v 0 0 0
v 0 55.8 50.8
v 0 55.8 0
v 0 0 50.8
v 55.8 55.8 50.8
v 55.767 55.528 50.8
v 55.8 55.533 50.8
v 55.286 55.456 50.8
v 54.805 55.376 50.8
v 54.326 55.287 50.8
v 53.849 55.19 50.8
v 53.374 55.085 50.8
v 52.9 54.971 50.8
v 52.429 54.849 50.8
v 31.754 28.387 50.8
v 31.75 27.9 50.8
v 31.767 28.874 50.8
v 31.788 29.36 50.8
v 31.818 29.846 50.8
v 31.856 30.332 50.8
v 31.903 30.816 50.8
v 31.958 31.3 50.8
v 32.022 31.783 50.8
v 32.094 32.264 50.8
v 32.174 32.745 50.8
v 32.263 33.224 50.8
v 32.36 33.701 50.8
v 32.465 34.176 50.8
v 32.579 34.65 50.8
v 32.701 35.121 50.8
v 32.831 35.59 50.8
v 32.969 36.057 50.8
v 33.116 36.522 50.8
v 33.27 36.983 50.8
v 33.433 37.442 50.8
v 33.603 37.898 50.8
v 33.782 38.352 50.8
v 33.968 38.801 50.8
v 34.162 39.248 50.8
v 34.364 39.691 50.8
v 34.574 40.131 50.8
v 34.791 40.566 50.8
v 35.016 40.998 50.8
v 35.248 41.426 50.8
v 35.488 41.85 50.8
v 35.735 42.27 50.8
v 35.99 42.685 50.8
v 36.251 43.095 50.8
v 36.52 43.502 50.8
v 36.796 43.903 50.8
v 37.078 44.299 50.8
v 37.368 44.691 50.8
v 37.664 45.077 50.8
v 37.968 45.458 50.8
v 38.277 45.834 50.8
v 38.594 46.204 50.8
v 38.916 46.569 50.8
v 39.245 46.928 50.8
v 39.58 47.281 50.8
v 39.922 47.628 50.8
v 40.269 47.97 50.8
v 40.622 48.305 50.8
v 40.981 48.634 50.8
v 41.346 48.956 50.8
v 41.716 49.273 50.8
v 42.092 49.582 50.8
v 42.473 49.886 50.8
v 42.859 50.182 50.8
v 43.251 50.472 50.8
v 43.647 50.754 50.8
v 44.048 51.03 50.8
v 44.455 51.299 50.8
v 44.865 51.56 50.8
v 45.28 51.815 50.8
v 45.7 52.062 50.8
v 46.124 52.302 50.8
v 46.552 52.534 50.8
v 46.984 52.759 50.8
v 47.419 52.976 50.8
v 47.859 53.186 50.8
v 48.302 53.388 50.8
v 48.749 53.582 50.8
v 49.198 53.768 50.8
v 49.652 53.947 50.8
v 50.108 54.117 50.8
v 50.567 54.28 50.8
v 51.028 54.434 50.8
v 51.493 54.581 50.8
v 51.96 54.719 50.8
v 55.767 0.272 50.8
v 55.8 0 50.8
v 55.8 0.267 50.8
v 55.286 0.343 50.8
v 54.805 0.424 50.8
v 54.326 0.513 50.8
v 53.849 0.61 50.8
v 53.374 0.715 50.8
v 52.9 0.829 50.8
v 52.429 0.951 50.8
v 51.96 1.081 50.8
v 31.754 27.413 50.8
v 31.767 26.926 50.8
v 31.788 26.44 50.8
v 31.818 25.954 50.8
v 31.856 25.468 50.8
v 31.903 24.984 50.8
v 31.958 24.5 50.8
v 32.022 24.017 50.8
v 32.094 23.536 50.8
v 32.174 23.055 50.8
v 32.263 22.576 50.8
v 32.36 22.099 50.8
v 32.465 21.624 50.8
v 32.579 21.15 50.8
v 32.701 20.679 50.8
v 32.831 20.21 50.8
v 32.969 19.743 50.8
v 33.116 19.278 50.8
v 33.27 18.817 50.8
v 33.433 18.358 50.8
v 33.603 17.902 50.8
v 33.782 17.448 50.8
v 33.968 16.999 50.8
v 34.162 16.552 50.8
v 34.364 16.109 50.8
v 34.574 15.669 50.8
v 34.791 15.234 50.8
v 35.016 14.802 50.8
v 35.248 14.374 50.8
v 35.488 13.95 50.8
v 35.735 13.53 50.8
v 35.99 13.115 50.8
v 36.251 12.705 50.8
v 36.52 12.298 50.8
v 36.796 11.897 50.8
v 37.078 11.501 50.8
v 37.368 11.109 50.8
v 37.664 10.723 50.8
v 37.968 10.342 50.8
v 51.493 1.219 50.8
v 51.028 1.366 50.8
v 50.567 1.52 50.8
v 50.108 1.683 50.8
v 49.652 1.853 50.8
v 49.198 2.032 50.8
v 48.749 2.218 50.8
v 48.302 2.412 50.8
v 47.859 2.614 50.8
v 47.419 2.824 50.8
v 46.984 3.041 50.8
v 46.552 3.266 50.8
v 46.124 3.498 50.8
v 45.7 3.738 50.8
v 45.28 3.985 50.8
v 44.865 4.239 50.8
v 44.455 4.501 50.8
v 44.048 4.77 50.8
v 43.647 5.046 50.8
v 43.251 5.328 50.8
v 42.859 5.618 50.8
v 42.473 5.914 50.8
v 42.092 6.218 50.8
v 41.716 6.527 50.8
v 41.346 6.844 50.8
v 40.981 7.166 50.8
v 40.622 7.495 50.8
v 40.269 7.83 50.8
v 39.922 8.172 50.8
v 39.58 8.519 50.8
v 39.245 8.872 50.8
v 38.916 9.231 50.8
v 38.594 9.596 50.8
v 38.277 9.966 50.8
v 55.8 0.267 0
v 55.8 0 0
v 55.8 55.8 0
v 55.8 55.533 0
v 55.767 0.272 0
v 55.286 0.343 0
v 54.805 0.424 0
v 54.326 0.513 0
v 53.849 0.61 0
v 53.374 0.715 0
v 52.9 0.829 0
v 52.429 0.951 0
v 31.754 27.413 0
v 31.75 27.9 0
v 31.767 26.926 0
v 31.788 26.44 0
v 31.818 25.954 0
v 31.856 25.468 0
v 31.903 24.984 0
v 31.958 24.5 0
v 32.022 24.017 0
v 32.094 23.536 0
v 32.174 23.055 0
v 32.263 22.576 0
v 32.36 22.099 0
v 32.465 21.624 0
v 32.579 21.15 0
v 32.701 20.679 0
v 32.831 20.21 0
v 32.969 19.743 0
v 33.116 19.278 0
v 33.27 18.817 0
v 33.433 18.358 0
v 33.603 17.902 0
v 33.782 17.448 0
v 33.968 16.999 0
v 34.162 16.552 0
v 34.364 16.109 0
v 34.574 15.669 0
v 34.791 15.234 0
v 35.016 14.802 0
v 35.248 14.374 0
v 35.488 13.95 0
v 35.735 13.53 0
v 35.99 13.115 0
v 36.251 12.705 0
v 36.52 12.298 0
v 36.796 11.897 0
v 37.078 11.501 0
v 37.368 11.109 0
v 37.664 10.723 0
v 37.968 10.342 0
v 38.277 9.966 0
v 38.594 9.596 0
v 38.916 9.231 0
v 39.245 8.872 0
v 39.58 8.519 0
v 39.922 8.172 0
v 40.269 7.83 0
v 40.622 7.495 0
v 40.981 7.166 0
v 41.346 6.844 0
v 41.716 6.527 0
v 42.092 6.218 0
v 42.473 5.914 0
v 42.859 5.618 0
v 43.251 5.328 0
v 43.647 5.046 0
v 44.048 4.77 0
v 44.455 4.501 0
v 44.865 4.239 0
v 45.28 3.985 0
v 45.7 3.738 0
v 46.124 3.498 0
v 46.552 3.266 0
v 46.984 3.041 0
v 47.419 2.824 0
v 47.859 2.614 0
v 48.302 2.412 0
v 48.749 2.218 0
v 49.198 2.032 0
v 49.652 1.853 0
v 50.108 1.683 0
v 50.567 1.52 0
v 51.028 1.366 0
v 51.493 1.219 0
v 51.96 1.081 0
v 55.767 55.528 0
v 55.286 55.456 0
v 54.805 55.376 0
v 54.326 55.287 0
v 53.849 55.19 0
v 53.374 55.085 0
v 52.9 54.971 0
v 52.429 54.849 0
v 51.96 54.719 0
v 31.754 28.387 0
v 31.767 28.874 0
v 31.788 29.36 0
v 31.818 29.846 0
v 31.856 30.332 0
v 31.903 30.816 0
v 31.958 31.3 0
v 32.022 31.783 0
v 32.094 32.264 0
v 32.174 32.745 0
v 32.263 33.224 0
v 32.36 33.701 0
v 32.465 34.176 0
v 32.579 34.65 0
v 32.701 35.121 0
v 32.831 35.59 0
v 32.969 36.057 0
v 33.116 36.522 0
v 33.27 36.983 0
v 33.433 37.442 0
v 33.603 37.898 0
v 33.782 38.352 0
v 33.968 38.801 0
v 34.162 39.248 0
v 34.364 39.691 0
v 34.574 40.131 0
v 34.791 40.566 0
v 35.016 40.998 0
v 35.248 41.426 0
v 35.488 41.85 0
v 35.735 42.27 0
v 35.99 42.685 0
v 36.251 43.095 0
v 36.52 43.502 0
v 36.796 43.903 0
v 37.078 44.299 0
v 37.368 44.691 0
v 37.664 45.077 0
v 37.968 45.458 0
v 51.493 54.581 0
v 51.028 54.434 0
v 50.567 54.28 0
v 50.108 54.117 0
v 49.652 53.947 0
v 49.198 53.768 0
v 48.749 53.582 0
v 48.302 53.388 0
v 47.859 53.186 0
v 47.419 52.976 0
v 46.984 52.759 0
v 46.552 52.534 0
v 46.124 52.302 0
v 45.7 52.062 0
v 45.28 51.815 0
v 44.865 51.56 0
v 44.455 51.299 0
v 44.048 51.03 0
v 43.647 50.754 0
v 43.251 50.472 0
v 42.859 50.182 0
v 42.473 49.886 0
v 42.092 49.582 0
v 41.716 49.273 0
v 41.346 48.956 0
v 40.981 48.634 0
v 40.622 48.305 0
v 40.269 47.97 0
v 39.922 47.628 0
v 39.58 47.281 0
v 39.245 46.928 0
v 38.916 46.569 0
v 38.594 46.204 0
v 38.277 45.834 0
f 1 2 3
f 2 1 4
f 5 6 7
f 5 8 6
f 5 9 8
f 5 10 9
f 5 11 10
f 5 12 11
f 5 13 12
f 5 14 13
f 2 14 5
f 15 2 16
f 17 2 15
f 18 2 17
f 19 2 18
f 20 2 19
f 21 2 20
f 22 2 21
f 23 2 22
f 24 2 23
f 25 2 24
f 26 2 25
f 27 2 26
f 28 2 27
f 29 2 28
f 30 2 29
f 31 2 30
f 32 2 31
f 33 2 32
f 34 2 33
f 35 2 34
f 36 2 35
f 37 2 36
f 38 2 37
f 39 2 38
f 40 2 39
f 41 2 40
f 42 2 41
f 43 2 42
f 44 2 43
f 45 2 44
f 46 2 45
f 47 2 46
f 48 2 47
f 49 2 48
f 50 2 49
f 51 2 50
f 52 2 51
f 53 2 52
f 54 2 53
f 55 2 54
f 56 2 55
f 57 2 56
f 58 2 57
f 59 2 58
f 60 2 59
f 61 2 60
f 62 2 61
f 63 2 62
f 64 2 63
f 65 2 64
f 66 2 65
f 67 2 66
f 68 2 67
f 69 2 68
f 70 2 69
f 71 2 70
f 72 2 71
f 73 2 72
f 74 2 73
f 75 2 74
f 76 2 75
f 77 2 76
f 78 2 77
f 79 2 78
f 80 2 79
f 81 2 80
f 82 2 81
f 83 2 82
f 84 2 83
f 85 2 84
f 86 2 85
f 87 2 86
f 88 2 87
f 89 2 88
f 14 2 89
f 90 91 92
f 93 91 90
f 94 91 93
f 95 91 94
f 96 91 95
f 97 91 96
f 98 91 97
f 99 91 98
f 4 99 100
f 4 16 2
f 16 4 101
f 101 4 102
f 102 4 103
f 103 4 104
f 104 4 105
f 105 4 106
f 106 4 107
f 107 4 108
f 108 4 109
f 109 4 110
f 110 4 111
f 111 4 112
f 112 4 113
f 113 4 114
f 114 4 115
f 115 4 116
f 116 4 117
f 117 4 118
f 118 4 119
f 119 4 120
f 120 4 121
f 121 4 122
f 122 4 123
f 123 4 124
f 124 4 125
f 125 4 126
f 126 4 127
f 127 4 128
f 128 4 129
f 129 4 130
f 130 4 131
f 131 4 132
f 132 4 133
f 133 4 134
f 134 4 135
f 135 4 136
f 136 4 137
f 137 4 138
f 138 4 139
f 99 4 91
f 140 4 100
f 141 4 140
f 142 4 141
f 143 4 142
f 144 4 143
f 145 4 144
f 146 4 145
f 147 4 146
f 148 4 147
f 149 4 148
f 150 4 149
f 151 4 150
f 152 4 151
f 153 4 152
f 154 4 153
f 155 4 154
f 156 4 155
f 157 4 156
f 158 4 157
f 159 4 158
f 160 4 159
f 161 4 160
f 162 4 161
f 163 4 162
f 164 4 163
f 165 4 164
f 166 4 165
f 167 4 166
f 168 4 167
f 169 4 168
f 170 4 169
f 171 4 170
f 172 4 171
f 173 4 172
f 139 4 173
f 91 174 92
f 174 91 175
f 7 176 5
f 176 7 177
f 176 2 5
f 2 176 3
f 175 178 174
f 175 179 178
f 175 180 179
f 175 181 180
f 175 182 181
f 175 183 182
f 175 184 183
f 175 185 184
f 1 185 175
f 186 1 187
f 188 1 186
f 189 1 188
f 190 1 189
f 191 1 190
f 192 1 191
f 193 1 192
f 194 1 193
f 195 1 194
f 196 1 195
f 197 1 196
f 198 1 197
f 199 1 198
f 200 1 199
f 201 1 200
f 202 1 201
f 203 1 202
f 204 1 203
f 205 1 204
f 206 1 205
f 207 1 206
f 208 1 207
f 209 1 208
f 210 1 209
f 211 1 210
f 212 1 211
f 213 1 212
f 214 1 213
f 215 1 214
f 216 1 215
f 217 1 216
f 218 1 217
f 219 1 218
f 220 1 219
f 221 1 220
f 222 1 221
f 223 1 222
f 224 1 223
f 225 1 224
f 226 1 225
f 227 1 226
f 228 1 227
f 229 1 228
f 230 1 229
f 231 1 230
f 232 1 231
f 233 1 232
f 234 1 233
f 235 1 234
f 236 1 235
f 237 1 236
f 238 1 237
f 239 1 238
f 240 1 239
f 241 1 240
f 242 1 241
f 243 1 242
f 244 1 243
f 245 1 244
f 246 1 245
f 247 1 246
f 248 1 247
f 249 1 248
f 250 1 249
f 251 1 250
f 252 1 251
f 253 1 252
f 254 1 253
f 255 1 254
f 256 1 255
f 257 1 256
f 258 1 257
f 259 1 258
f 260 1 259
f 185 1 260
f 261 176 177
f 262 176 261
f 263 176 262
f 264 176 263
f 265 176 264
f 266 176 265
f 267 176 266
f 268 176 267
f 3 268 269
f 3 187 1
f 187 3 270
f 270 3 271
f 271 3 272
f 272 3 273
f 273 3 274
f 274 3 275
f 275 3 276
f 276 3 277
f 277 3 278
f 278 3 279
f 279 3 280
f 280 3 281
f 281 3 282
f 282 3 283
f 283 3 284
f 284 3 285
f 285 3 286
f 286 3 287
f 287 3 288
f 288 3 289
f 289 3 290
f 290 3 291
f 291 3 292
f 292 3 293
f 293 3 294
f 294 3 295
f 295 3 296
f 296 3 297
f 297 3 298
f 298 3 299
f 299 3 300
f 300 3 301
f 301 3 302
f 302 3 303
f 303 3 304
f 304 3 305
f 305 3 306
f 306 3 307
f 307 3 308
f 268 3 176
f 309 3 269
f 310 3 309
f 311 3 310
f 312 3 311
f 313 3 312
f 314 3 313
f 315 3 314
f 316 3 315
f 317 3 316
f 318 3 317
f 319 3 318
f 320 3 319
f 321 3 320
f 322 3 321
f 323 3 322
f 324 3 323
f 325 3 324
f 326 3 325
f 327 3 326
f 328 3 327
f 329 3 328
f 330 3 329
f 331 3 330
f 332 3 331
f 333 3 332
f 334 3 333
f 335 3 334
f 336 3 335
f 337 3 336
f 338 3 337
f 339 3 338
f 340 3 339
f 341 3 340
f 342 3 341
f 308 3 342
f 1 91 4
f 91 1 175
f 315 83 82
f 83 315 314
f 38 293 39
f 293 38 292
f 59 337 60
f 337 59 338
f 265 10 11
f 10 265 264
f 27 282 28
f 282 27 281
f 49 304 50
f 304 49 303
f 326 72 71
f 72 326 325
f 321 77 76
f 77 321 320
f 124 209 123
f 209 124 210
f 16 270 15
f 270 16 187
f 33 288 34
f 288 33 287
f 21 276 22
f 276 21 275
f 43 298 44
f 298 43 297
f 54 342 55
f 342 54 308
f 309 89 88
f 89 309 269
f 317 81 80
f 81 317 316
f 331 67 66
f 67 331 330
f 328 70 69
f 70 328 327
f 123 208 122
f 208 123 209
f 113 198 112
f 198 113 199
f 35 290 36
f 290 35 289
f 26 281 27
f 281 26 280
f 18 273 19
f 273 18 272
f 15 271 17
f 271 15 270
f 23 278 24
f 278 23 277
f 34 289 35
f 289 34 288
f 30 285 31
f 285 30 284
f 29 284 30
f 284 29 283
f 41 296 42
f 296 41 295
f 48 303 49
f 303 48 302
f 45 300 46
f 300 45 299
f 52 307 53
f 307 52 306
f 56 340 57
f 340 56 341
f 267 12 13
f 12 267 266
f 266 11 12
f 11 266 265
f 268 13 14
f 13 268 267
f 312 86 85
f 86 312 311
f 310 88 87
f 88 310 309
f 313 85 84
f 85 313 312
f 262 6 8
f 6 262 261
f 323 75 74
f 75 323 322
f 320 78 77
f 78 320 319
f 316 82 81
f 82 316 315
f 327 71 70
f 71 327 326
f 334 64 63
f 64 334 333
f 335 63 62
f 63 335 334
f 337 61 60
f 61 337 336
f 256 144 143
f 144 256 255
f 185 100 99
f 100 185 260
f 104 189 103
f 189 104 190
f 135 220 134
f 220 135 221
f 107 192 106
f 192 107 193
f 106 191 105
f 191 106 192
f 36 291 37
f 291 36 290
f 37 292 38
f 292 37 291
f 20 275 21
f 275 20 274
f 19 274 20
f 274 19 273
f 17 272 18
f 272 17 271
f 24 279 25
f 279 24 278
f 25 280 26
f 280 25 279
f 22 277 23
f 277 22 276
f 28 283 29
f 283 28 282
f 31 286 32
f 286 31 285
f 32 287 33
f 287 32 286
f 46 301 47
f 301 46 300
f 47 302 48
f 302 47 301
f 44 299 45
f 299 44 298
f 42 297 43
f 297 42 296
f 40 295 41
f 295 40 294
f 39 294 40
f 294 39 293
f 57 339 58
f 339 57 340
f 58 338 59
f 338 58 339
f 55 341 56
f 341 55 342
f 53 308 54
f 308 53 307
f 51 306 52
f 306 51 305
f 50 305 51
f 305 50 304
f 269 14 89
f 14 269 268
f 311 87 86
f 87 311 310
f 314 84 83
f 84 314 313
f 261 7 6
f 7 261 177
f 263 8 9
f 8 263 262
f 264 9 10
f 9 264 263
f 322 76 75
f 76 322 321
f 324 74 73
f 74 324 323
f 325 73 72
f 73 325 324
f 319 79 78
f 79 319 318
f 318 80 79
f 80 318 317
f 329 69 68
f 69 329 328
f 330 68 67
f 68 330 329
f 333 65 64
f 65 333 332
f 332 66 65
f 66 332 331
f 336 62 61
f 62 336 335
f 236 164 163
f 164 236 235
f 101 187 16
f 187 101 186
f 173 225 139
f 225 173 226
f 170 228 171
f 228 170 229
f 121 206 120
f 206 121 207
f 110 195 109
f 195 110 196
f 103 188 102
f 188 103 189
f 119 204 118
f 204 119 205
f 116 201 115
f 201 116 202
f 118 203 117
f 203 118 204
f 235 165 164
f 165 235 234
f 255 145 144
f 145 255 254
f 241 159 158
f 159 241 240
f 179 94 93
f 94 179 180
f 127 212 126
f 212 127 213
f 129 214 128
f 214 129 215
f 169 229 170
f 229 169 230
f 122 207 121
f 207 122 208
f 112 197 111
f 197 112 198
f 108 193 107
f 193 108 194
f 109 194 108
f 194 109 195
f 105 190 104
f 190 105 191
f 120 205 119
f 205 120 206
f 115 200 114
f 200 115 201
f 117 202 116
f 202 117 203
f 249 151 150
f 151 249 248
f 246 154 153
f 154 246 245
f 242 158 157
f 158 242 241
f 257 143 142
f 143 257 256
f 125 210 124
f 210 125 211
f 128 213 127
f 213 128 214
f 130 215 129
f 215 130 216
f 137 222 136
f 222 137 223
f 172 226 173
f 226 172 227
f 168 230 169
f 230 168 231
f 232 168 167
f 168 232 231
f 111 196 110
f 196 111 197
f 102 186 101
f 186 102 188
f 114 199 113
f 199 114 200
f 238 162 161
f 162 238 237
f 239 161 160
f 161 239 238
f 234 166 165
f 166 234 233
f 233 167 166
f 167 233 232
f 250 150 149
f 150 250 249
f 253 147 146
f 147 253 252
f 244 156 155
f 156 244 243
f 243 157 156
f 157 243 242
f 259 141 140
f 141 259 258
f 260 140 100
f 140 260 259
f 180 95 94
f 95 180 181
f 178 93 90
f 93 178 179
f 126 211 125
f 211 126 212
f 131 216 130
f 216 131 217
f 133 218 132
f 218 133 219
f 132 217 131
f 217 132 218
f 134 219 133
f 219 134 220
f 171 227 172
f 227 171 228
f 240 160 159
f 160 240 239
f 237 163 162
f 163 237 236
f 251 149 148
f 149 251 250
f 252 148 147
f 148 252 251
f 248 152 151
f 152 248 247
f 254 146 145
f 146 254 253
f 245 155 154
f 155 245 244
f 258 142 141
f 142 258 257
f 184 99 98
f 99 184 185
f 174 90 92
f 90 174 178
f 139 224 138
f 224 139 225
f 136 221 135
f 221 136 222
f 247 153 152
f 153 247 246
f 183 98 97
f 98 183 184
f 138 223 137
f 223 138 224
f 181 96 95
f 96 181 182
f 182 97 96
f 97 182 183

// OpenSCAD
dia = 55.8;       // 2.197" conduit diameter
height = 50.8;    // 2.000" block height
width = 50.8;     // 2.000" block width
standoff = 31.75; // 1.250" from edge to conduit

inset = (dia - width) / 2;

difference () {
  cube ([dia, dia, height]);
  /*
  polyhedron (
    points = [
      [   0,       inset,      0 ],
      [ dia,           0,      0 ],
      [ dia,         dia,      0 ],
      [   0, dia - inset,      0 ],
      [   0,       inset, height ],
      [ dia,           0, height ],
      [ dia,         dia, height ],
      [   0, dia - inset, height ],
    ],
    faces = [
      [0,1,2,3],  // bottom
      [4,5,1,0],  // front
      [7,6,5,4],  // top
      [5,6,2,1],  // right
      [6,7,3,2],  // back
      [7,4,0,3]   // left
    ],
    convexity = 10
  );
  */
  translate ([standoff + (dia / 2), dia / 2, -0.1]) 
    cylinder (h = height + 0.2, d = dia, $fn = 360);
}
